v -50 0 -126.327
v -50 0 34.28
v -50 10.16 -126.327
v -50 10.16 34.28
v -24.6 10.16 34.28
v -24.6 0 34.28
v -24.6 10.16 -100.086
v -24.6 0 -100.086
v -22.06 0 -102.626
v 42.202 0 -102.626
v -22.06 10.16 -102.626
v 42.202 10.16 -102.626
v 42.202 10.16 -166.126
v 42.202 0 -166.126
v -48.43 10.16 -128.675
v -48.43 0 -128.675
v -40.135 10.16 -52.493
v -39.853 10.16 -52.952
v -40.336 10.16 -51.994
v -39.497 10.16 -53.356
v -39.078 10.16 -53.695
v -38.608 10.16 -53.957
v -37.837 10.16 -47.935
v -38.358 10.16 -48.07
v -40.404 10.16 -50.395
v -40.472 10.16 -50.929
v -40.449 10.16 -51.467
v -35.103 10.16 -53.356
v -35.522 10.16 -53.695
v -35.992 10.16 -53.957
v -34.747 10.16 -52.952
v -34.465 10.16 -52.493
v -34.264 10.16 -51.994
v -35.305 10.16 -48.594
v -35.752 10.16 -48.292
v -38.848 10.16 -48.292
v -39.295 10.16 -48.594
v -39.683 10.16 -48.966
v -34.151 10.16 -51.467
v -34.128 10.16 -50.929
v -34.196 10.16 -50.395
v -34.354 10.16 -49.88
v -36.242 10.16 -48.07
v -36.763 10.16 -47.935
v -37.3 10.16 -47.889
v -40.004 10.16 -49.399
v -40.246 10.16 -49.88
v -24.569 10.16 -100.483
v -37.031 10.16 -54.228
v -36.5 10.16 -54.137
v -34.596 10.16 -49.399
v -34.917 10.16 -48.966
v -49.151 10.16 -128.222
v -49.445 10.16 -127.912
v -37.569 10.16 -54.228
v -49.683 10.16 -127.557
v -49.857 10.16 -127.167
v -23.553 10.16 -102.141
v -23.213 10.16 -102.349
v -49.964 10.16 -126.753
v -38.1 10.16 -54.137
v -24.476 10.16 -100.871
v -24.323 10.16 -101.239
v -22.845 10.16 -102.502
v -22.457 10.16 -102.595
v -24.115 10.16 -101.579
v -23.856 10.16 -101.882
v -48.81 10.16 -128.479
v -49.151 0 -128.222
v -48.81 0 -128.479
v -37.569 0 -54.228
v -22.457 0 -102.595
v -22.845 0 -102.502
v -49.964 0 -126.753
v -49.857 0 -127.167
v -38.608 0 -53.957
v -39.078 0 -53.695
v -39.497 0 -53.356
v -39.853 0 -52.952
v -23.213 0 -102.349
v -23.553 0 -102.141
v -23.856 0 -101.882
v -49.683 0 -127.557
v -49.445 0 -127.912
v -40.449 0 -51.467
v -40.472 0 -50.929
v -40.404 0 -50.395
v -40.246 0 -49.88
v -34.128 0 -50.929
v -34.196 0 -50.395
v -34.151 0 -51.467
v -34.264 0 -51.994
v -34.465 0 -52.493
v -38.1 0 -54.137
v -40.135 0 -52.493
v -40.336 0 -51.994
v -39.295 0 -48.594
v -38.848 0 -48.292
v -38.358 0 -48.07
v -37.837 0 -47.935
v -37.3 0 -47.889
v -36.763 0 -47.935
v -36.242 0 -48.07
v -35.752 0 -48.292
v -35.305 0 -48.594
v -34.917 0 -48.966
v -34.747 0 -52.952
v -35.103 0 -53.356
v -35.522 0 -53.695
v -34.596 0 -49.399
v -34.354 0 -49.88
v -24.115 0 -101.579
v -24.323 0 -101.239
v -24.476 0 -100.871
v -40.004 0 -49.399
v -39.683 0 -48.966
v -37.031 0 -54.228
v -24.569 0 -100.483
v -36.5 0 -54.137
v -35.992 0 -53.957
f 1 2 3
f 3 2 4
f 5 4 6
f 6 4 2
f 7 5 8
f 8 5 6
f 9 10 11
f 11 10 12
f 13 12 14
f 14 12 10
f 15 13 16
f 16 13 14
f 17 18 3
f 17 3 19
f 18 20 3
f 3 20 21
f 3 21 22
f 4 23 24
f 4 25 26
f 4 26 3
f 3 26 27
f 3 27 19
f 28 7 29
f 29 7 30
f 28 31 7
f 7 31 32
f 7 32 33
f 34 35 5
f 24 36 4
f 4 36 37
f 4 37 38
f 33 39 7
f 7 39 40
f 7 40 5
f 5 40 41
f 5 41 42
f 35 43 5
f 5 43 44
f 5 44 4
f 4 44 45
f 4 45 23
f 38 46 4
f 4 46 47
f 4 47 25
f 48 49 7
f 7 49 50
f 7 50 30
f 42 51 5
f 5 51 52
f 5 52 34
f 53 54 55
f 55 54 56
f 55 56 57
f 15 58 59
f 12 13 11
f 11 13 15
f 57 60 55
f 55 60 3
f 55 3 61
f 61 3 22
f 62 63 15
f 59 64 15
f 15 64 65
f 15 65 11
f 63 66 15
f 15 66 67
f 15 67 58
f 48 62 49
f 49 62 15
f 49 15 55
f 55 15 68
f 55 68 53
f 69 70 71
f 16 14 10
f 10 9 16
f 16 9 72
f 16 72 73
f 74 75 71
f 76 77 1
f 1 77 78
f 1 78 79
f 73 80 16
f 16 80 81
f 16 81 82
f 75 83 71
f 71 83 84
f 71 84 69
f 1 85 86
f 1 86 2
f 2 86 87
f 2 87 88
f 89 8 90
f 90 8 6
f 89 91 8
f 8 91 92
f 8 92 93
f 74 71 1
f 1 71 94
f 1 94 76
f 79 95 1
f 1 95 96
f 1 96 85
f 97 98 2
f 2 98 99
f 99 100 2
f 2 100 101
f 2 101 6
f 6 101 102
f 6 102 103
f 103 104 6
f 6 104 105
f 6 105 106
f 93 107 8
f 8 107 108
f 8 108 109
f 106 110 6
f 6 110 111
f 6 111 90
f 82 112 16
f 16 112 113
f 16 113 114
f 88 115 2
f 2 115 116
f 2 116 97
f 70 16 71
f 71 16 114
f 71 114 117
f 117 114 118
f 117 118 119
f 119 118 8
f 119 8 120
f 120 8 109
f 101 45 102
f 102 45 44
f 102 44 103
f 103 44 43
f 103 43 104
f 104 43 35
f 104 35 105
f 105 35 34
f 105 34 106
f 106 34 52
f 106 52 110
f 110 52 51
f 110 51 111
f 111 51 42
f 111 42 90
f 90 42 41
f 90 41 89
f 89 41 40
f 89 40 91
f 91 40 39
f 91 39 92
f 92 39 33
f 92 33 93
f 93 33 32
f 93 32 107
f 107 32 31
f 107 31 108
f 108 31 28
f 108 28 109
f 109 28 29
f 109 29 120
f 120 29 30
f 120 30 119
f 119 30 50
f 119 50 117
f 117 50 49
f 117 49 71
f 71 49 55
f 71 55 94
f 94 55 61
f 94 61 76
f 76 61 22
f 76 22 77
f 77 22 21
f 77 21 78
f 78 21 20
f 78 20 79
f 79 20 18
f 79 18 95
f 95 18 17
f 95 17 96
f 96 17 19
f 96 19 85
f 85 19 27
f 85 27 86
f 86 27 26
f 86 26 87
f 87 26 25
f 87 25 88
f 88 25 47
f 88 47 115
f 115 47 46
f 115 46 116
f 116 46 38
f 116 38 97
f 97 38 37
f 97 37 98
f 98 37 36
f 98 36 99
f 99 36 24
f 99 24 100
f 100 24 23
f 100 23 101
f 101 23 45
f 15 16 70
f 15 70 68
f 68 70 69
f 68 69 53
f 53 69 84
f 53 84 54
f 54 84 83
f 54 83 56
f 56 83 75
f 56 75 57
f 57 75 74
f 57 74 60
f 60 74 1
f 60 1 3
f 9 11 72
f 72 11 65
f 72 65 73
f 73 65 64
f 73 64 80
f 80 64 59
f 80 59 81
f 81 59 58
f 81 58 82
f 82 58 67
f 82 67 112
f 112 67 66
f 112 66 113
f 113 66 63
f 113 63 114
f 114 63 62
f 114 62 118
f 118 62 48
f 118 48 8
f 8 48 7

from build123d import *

# Parameters (mm, degrees)
BOSS_EXTRUDE1_DEPTH = 10.16
SKETCH2_R           = 3.175
CUT_EXTRUDE1_DEPTH  = 10.16
FILLET1_R           = 2.54


with BuildPart() as part:
    # Sketch1 → Boss-Extrude1 (new body)
    with BuildSketch(Plane(origin=(0, 0, 0), x_dir=(1, 0, 0), z_dir=(0, 1, 0))):
        Polygon((-50, 128.026), (42.202, 166.126), (42.202, 128.026), (42.202, 102.626), (-24.6, 102.626), (-24.6, -34.28), (-50, -34.28), align=None)
    extrude(amount=BOSS_EXTRUDE1_DEPTH)

    # Sketch2 → Cut-Extrude1 (cut)
    with BuildSketch(Plane(origin=(0, 10.16, 0), x_dir=(1, 0, 0), z_dir=(0, 1, 0))):
        with Locations(Location((-37.3, 51.064, 0), (0, 0, 270))):
            Circle(SKETCH2_R)
    extrude(amount=-CUT_EXTRUDE1_DEPTH, mode=Mode.SUBTRACT)

    # Fillet1
    fillet1_edges = [part.edges().sort_by_distance(p)[0] for p in [
        (-50, 5.08, -128.026),
        (-24.6, 5.08, -102.626),
    ]]
    fillet(fillet1_edges, radius=FILLET1_R)


solid = part.part
